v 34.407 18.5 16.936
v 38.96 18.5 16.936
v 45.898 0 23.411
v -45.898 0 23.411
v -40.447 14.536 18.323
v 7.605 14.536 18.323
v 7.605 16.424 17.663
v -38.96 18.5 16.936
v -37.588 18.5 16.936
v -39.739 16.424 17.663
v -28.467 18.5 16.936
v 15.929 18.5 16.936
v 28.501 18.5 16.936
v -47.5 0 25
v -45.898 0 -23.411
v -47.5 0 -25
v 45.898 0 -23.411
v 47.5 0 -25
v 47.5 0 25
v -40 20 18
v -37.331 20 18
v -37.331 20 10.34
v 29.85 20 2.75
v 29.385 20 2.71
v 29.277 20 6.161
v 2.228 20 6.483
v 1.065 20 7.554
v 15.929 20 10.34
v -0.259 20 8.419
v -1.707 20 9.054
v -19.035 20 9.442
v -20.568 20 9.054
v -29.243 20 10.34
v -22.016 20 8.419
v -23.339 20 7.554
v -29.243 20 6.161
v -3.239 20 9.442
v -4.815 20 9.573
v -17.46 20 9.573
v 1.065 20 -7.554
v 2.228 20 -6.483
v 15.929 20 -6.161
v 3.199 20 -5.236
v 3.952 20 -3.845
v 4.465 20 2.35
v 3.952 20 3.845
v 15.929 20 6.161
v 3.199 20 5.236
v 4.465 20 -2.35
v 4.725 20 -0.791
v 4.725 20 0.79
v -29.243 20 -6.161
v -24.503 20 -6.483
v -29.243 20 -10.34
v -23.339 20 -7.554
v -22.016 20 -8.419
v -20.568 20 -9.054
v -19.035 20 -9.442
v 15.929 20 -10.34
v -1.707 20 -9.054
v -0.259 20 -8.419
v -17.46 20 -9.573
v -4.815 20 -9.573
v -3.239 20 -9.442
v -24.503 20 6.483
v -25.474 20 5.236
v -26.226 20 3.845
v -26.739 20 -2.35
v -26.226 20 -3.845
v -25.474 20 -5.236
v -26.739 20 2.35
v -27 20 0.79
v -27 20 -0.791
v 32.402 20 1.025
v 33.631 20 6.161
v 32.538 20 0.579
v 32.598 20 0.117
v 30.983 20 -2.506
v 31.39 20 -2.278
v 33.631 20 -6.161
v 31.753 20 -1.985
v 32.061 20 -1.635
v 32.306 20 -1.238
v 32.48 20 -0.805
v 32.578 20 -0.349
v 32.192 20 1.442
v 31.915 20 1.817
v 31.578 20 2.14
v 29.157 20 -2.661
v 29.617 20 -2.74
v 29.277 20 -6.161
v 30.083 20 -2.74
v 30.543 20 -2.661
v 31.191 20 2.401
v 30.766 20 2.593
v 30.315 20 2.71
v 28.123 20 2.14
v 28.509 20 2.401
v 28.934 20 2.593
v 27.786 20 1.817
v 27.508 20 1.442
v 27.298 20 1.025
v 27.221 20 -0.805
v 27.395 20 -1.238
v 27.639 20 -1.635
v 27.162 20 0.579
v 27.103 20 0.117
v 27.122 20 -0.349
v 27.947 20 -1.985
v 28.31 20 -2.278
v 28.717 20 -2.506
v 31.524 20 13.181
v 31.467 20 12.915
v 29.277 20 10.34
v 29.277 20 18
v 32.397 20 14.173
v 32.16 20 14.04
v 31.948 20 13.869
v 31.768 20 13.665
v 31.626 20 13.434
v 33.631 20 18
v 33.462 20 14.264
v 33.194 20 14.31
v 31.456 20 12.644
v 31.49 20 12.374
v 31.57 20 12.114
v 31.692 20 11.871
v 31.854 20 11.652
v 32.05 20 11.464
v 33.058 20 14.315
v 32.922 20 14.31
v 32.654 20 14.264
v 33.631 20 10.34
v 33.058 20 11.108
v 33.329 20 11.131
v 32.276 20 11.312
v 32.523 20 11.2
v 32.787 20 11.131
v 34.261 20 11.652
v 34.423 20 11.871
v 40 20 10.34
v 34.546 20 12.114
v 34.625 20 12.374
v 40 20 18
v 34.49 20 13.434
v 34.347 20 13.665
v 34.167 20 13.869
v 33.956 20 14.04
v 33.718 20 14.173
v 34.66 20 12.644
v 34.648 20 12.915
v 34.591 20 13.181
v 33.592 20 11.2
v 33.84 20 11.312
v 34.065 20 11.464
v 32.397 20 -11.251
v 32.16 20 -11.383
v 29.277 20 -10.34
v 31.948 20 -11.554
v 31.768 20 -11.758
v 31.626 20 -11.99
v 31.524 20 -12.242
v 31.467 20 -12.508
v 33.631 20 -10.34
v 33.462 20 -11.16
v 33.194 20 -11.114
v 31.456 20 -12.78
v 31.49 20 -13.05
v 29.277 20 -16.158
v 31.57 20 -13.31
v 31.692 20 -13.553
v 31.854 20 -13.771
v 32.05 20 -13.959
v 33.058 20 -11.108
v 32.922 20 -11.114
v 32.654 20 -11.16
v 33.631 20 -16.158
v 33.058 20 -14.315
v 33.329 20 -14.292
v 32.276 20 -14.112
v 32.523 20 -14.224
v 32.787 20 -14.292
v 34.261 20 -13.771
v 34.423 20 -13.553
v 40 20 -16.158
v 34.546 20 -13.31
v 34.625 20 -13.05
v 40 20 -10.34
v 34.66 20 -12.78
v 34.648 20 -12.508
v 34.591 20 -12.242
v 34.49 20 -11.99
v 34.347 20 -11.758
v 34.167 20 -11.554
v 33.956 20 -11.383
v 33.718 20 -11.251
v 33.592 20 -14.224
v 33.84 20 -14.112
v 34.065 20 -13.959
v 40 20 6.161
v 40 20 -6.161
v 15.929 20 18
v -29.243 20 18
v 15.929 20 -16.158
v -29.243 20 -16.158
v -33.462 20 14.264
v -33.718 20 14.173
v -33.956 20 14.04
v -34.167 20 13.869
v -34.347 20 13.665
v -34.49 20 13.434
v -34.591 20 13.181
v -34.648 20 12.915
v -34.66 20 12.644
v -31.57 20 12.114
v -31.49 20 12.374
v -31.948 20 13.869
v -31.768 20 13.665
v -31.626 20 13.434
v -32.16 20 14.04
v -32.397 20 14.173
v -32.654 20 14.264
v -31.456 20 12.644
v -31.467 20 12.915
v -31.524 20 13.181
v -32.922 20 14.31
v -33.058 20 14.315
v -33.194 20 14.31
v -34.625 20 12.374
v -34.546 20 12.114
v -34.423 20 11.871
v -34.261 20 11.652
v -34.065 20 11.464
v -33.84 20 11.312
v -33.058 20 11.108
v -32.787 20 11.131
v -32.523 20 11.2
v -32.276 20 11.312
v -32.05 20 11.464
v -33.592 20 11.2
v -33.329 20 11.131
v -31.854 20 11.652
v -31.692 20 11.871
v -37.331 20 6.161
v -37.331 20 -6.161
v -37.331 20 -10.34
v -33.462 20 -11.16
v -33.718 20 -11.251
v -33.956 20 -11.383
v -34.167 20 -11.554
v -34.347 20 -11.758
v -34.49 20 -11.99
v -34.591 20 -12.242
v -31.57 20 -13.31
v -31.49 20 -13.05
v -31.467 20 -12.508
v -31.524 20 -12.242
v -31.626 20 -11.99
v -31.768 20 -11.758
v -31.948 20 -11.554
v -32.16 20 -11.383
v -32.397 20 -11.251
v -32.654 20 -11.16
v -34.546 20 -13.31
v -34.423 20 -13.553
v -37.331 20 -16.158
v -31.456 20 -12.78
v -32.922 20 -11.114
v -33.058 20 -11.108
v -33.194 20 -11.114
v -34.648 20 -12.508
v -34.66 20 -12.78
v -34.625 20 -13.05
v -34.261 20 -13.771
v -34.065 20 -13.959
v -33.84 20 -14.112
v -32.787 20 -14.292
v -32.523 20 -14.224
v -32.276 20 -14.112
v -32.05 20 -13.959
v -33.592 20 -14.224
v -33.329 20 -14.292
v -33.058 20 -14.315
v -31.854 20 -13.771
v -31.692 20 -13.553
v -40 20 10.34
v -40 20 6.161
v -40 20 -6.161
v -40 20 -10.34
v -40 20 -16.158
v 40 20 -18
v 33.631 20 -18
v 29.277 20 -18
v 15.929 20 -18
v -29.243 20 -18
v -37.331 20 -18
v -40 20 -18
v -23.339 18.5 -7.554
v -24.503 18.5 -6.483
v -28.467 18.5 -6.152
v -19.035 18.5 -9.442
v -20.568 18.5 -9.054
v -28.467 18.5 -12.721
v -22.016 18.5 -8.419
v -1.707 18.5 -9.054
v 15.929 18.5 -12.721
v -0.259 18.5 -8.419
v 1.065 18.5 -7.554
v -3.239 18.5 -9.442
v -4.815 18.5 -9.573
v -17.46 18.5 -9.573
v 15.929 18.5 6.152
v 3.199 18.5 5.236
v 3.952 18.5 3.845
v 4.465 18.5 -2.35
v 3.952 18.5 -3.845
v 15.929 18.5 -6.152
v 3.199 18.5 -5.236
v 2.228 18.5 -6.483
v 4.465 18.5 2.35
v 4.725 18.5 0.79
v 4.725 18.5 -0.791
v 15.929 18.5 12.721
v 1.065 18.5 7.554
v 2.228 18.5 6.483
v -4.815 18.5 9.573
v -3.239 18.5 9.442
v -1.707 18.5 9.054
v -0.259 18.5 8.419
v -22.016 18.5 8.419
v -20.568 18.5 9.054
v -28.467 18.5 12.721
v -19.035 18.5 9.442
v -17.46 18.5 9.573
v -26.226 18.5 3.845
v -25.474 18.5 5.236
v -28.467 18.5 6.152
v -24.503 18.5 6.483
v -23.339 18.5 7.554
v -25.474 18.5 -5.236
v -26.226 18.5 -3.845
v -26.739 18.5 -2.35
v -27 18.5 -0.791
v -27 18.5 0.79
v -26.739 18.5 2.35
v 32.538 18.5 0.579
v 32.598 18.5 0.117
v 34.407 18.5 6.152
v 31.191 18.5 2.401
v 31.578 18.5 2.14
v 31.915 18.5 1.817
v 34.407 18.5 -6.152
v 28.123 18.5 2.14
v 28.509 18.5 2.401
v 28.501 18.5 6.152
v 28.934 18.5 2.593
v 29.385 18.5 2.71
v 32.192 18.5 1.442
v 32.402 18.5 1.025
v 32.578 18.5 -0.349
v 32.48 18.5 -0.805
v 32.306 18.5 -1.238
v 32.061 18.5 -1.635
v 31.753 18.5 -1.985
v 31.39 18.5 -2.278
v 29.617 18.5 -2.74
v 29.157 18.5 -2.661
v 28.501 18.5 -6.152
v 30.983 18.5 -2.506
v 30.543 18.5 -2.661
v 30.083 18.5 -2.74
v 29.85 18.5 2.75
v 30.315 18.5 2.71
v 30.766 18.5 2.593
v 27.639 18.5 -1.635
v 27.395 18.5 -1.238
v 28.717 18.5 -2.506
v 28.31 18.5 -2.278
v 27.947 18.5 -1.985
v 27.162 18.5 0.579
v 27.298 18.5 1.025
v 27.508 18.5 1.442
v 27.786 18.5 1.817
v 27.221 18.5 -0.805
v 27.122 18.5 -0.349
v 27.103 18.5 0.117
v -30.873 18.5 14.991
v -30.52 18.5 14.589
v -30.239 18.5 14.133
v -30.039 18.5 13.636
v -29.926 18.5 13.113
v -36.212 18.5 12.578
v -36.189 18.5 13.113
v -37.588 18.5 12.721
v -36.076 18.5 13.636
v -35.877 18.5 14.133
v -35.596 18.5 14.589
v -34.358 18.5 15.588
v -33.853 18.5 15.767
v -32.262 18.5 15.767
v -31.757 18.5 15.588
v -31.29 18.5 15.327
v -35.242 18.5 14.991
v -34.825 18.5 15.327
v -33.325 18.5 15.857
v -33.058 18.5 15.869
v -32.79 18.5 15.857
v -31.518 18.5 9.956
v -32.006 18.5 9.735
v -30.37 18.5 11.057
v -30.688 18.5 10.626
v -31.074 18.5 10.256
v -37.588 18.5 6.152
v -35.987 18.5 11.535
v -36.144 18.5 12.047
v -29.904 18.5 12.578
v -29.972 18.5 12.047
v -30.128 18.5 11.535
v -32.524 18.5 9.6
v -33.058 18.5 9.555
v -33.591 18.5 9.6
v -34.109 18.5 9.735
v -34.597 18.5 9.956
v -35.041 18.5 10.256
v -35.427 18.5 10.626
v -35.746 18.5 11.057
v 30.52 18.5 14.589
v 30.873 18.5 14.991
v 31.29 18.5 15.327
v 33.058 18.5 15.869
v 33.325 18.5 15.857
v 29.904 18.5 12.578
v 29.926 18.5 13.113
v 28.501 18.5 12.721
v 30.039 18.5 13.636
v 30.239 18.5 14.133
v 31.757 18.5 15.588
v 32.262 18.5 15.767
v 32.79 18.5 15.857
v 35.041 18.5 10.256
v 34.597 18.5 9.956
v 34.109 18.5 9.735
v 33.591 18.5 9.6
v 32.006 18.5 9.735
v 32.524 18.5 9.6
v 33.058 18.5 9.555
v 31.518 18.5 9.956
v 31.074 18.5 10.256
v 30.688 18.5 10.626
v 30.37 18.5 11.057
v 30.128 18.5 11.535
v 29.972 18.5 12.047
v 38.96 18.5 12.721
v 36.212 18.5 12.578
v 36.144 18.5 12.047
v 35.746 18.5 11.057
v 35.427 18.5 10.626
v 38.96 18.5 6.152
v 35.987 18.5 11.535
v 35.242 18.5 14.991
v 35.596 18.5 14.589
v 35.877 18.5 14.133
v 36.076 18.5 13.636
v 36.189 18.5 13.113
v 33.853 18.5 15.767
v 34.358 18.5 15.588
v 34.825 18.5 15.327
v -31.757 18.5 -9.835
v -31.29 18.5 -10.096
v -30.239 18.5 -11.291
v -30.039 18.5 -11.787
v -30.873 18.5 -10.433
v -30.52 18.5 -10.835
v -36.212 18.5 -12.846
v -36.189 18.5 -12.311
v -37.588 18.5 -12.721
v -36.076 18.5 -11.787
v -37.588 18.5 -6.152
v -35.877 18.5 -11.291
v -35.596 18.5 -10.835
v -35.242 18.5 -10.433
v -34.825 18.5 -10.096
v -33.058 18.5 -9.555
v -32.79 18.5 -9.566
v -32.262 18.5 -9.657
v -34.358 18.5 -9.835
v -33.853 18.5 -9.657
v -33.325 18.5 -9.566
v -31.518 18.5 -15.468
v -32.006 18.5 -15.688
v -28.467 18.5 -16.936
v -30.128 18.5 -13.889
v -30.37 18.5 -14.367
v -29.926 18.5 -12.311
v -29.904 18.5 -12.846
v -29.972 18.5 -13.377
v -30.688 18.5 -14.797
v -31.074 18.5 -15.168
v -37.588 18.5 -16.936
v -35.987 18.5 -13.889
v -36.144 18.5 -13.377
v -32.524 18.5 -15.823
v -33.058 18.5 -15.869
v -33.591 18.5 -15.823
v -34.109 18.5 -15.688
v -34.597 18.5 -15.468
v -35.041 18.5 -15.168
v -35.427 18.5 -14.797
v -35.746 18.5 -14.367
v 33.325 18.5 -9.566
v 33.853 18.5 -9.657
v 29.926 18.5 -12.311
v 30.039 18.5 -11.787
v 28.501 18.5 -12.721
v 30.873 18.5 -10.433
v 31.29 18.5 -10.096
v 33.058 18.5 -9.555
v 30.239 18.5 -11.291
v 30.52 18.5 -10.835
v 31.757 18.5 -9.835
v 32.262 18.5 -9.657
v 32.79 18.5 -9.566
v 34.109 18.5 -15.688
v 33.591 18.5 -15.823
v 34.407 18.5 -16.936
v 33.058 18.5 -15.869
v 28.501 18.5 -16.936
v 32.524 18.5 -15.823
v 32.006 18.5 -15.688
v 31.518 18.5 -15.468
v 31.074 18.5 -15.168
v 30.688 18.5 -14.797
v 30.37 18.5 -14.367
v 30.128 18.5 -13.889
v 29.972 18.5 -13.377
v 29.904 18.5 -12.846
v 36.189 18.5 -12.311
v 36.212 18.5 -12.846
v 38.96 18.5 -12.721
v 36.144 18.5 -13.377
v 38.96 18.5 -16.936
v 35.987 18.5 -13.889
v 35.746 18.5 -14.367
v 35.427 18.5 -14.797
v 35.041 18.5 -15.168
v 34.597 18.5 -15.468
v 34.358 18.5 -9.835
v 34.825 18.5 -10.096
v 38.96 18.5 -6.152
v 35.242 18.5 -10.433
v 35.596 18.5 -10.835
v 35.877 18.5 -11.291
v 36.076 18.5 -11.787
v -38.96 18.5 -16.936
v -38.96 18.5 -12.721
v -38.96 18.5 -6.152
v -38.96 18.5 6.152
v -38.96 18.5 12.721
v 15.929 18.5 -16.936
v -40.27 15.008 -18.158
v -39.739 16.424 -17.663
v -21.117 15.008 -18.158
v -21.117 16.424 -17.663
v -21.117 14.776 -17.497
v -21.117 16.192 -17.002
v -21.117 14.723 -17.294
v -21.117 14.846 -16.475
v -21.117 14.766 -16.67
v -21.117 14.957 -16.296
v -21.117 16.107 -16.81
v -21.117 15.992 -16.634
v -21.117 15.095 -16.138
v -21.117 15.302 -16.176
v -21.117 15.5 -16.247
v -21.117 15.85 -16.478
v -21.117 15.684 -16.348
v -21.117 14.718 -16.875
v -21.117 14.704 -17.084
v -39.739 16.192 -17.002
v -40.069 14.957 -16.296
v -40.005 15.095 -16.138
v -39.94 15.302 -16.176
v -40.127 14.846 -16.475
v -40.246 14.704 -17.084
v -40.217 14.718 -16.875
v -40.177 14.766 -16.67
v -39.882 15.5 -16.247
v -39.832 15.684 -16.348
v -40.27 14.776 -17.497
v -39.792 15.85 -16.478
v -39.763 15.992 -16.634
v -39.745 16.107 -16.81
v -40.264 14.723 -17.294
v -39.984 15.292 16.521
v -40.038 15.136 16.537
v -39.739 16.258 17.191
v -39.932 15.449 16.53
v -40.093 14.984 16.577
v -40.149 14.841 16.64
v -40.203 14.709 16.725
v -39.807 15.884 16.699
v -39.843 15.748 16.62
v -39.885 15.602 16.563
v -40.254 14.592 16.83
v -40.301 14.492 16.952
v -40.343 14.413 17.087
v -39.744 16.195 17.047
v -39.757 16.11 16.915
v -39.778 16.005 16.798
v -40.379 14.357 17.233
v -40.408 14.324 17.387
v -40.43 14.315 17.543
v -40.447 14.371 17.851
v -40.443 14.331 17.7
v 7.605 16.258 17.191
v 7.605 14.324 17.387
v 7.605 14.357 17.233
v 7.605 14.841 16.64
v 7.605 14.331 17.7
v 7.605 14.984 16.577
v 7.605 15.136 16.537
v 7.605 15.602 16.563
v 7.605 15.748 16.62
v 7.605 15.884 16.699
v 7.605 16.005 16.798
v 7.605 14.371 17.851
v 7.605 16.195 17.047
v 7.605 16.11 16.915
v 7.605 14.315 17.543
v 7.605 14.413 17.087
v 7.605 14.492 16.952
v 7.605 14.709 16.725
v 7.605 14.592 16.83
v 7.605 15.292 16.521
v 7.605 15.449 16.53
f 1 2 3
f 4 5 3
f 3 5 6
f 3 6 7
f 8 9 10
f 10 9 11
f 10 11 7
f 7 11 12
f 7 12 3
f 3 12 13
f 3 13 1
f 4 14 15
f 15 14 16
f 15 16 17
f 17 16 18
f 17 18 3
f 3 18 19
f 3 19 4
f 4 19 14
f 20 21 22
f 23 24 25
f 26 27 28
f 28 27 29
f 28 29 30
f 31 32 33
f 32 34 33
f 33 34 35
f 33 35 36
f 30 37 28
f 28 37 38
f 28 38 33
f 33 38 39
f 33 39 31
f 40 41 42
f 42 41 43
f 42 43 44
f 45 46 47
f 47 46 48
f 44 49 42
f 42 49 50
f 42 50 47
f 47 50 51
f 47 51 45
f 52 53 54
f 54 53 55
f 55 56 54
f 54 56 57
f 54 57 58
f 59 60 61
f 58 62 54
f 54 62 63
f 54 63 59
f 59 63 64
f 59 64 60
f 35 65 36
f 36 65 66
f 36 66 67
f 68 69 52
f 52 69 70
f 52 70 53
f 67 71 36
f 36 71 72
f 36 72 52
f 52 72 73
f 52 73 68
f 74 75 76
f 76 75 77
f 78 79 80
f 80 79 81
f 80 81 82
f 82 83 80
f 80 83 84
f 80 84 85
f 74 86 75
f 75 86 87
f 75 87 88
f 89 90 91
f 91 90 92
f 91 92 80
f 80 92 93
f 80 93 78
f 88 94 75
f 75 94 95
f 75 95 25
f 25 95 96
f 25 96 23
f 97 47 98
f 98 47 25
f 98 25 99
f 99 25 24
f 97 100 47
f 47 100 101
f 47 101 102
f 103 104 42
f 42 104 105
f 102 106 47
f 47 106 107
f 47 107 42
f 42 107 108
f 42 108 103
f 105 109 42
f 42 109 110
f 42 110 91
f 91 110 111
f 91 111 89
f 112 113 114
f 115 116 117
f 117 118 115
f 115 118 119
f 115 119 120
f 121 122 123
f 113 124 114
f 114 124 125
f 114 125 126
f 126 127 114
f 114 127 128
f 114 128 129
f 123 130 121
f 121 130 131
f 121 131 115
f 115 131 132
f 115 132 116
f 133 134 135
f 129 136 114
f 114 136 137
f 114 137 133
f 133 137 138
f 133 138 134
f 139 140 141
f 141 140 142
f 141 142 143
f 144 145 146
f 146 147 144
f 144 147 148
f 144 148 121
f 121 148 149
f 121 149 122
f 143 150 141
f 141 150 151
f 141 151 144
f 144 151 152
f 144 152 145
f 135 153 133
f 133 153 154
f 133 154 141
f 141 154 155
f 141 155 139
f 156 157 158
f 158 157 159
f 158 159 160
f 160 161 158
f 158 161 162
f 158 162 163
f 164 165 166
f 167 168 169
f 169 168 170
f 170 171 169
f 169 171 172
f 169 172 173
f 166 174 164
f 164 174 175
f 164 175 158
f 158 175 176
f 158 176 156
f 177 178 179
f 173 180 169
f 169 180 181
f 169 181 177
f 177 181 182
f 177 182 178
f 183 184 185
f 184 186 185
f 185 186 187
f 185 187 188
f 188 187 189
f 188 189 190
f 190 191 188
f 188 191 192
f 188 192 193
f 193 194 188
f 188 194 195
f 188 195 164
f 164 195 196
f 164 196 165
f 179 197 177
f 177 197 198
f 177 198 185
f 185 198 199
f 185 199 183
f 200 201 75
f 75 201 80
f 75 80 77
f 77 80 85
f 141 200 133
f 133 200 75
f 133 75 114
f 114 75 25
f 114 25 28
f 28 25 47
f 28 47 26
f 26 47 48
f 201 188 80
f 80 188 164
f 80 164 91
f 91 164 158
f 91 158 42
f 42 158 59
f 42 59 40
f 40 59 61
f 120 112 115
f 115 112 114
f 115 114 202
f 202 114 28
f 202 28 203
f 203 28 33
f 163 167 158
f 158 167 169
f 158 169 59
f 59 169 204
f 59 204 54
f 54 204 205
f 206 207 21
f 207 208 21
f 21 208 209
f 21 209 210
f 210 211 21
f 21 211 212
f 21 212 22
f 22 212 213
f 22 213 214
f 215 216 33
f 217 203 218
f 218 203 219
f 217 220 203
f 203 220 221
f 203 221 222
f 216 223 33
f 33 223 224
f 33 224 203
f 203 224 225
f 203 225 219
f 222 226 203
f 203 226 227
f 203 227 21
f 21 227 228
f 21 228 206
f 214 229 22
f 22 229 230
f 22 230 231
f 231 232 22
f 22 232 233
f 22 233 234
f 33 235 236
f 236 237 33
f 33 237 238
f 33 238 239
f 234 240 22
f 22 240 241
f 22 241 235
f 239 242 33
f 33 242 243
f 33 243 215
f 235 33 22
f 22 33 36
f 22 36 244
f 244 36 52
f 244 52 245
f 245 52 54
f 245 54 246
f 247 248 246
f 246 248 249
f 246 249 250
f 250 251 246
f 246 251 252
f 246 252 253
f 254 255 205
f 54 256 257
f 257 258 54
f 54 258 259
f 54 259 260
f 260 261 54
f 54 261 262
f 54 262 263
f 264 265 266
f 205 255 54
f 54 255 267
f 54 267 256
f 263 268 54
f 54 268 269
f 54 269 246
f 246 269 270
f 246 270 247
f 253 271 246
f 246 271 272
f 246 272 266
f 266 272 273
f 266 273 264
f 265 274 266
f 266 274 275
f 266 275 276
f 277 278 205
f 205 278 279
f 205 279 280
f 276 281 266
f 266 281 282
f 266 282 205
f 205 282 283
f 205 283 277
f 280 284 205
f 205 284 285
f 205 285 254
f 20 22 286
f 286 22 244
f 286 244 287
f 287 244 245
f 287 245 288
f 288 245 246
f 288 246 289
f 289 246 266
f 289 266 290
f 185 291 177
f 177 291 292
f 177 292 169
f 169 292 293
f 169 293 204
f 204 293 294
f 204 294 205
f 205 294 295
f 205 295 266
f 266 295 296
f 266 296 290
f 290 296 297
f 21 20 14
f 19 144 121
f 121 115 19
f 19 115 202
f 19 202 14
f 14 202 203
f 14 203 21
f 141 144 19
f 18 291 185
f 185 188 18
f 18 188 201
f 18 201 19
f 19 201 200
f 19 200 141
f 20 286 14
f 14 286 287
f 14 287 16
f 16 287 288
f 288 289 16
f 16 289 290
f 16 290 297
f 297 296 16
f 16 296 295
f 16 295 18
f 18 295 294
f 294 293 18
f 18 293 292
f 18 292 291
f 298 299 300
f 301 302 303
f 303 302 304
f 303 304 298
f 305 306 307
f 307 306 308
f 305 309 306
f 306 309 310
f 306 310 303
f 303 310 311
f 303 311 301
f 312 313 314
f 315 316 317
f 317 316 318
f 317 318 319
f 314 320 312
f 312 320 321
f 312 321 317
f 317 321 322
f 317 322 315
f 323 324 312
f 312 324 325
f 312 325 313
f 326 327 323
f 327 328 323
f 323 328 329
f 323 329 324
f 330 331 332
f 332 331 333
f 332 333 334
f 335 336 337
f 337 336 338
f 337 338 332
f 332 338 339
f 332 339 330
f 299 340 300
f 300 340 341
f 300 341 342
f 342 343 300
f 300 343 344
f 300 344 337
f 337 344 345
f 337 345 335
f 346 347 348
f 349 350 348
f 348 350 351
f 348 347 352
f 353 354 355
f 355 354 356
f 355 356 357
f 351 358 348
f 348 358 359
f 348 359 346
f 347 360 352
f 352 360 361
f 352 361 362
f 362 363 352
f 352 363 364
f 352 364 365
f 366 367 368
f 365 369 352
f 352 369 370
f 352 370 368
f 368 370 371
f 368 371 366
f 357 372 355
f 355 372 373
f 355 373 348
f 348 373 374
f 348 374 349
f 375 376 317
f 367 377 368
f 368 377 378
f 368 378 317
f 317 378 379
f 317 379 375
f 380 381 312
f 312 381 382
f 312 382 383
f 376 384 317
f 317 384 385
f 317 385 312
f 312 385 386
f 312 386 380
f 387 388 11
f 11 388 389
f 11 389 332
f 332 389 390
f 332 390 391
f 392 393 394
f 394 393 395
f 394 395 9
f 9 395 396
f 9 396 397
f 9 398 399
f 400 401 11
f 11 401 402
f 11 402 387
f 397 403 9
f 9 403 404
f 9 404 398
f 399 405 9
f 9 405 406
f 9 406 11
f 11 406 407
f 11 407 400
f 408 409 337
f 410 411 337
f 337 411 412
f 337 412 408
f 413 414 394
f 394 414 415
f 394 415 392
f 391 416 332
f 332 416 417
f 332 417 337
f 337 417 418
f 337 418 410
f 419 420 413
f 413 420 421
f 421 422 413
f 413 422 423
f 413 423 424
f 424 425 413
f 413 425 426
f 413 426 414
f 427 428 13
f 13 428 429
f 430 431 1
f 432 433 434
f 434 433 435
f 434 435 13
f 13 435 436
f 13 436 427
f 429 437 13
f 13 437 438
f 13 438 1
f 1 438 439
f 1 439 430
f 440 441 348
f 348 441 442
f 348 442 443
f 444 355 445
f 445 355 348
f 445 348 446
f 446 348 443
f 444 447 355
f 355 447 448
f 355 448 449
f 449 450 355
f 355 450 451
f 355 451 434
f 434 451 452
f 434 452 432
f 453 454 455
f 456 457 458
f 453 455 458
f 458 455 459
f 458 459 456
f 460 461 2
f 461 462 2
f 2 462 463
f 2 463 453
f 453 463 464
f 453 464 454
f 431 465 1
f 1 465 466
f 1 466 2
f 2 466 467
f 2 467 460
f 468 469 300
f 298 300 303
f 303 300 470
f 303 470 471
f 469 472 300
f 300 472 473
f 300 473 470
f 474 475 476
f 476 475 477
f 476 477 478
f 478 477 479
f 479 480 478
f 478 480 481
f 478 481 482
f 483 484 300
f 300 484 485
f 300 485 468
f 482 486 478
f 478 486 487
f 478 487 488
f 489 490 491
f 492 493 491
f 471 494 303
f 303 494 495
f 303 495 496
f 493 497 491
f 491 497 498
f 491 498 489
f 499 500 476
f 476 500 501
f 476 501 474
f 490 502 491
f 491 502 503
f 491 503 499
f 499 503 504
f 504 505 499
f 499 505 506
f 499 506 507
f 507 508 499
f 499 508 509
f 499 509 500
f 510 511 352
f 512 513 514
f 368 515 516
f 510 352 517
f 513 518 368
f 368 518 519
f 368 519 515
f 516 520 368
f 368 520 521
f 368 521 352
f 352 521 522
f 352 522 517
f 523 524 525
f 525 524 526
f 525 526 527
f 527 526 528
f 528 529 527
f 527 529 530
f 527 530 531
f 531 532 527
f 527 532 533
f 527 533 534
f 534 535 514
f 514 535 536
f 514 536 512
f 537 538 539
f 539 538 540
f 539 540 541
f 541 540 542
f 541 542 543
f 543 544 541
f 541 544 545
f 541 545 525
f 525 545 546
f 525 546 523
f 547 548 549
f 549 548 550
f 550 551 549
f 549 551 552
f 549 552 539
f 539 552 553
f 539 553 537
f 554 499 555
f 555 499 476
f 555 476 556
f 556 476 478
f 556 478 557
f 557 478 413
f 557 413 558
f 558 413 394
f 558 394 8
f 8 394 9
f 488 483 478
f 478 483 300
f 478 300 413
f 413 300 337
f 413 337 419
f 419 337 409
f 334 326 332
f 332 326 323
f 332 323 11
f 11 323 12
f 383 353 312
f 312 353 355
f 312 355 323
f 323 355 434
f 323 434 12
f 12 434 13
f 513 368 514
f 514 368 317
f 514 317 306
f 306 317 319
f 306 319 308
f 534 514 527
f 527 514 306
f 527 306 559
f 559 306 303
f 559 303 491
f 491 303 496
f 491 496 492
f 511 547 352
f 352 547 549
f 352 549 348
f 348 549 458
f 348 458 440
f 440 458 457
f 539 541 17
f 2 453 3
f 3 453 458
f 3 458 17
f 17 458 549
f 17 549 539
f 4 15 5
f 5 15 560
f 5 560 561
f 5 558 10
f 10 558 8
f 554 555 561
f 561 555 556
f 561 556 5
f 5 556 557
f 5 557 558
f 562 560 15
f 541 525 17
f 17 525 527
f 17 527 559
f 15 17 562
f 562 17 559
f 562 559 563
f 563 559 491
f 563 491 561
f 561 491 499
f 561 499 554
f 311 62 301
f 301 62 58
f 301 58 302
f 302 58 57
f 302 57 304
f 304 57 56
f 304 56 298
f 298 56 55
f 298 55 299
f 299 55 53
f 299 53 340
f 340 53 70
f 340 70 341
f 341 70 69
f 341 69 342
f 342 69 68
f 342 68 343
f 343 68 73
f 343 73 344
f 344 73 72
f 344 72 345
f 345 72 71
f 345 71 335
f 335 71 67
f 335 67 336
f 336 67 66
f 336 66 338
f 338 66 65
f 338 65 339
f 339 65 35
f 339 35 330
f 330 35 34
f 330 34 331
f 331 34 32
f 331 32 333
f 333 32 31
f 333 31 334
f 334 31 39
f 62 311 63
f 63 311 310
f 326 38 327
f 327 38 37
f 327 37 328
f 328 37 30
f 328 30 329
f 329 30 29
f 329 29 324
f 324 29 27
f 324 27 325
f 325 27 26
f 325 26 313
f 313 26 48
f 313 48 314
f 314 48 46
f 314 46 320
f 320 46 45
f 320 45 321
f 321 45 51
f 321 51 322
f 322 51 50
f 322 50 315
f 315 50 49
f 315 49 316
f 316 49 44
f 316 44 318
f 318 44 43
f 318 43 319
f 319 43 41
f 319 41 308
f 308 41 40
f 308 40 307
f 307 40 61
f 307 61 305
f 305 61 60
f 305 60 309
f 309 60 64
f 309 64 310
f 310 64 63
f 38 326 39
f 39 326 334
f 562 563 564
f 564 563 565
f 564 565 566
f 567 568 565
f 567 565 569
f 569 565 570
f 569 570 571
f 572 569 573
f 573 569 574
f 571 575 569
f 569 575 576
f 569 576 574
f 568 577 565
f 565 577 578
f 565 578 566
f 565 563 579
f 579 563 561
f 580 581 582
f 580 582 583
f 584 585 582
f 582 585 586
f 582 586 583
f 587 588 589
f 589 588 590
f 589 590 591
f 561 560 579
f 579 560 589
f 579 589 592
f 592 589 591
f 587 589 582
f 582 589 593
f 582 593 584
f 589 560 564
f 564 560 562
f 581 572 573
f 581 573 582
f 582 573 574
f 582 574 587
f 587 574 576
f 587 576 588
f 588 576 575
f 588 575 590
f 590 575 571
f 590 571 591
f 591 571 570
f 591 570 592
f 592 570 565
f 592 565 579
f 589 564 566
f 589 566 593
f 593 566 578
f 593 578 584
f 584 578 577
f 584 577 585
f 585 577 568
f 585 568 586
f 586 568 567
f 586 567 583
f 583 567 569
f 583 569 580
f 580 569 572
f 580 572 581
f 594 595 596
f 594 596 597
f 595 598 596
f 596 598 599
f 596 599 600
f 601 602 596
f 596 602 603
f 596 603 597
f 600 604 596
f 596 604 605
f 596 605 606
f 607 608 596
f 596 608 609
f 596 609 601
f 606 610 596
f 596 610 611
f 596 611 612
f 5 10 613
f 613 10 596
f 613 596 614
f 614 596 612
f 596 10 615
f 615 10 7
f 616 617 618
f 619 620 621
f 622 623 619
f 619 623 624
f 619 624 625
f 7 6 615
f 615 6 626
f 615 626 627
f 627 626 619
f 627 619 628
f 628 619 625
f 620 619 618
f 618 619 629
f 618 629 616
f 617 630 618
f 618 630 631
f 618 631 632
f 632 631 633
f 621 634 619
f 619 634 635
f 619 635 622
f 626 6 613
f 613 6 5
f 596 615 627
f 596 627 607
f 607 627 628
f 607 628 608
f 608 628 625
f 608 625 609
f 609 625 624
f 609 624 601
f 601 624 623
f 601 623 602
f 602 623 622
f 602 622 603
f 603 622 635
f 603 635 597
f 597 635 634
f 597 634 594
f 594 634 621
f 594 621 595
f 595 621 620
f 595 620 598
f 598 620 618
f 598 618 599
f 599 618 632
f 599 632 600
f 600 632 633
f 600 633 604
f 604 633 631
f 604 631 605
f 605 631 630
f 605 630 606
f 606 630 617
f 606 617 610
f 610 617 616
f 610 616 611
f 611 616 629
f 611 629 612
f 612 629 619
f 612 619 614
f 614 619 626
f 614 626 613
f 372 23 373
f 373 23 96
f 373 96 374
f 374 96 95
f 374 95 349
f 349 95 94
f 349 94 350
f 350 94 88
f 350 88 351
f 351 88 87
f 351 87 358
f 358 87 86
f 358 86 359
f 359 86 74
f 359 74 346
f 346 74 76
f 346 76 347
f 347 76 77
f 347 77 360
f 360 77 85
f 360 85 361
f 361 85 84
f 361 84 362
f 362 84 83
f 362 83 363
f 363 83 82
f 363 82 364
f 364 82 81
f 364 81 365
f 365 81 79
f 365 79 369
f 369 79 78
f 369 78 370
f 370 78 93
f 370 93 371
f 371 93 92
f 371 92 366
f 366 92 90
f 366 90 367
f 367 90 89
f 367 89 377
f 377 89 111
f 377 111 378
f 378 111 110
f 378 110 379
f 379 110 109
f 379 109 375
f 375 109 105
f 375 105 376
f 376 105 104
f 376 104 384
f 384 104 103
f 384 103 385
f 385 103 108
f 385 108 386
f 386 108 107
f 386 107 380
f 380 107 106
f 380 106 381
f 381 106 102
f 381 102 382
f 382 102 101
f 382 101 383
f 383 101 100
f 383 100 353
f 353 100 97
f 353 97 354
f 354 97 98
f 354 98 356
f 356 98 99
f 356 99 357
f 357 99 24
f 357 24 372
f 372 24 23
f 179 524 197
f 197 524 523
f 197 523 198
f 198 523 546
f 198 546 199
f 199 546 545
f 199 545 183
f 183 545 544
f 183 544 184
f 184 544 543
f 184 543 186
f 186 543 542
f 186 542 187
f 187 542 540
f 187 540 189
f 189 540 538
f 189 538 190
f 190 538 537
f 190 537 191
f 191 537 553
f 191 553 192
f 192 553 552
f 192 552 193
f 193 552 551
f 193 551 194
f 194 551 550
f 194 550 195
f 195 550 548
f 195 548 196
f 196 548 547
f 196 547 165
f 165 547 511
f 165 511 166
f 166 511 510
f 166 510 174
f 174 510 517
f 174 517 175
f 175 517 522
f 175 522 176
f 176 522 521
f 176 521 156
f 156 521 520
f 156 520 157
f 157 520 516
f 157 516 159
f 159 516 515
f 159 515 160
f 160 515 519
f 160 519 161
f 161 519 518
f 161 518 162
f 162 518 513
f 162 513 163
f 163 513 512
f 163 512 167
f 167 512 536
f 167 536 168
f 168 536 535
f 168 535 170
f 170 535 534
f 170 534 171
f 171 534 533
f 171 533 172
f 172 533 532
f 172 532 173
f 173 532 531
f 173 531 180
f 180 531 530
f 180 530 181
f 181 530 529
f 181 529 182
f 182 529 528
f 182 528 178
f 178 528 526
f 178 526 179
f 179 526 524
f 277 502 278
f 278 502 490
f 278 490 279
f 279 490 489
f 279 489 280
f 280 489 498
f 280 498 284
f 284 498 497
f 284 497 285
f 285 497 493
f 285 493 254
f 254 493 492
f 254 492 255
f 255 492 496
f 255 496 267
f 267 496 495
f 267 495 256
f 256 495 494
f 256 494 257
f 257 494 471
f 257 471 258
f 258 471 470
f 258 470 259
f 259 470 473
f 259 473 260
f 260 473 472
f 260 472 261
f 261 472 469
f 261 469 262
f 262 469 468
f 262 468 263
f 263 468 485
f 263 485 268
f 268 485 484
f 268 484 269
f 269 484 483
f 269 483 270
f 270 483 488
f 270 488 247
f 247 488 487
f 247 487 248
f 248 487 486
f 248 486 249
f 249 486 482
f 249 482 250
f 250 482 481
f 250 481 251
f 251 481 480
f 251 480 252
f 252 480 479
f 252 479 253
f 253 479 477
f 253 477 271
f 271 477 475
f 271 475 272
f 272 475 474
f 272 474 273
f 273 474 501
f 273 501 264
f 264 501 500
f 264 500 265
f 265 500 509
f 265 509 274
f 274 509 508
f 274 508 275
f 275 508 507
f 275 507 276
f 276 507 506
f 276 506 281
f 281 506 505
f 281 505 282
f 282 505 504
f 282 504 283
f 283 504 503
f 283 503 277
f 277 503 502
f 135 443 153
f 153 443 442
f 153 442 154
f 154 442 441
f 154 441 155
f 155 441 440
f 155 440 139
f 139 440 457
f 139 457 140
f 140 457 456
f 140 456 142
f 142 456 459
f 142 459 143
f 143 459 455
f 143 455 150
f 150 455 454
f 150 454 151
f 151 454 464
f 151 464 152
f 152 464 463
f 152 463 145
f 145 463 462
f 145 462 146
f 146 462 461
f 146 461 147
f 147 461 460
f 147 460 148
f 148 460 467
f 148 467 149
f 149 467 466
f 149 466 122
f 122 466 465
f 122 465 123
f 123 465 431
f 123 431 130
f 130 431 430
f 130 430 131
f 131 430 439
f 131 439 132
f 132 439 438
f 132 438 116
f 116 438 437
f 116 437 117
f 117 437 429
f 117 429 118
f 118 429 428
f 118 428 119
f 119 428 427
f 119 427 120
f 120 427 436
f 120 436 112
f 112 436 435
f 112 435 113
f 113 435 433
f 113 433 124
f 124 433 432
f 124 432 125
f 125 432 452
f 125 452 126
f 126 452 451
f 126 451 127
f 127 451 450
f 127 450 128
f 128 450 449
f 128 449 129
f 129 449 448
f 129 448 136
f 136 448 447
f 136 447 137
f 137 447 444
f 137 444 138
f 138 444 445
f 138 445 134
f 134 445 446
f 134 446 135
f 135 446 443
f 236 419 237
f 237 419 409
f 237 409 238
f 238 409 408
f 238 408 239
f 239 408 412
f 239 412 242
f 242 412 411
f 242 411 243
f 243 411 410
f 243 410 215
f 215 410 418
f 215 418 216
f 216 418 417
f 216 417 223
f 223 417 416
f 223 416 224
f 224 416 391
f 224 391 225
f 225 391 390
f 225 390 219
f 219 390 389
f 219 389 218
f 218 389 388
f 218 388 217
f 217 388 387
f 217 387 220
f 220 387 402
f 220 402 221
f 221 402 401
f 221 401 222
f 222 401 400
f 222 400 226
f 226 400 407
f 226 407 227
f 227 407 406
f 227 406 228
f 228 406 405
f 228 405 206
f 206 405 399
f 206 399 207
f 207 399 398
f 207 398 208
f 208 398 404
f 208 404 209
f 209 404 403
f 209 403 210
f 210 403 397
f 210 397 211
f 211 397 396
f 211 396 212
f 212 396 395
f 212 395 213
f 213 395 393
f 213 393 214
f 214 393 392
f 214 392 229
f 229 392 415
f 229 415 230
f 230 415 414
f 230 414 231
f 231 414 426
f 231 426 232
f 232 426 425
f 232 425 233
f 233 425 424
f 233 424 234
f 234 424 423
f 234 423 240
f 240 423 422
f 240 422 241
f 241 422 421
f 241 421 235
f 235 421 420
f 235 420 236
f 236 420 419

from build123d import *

# Parameters (mm, degrees)
BO_ALTMA1_T                 = -1.5
KES_EKSTR_ZYON1_DEPTH       = 2
Y_KSEKLIK_EKSTR_ZYON4_DEPTH = 2
RADYUS1_R                   = 1.3
Y_KSEKLIK_EKSTR_ZYON5_DEPTH = 1.5
RADYUS2_R                   = 1
IZIM7_R                     = 2.75
KES_EKSTR_ZYON2_DEPTH       = 10
IZIM8_R                     = 1.5
KES_EKSTR_ZYON3_DEPTH       = 10
PAH1_SIZE                   = 1.656848502
PAH1_SIZE_2                 = 1.6


# Some blends are built 0.0001 mm under size
with BuildPart() as part:
    # Çizim3 → Loft4 section 0
    with BuildSketch(Plane(origin=(0, 20, 0), x_dir=(1, 0, 0), z_dir=(0, 1, 0))):
        with BuildLine():
            Line((-40, 18), (40, 18))
            Line((40, 18), (40, -18))
            Line((40, -18), (-40, -18))
            Line((-40, -18), (-40, 18))
        make_face()
    # Çizim1 → Loft4 section 1
    with BuildSketch(Plane(origin=(0, 0, 0), x_dir=(1, 0, 0), z_dir=(0, 1, 0))):
        with BuildLine():
            Line((-47.5, 25), (47.5, 25))
            Line((47.5, 25), (47.5, -25))
            Line((47.5, -25), (-47.5, -25))
            Line((-47.5, -25), (-47.5, 25))
        make_face()
    loft()

    # İç Boşaltma1
    bo_altma1_openings = [part.faces().sort_by_distance(p)[0] for p in [
        (0, 0, 0),
    ]]
    offset(amount=BO_ALTMA1_T, openings=bo_altma1_openings, kind=Kind.INTERSECTION)

    # Çizim4 → Kes-Ekstrüzyon1 (cut)
    with BuildSketch(Plane(origin=(0, 20, 0), x_dir=(1, 0, 0), z_dir=(0, 1, 0))):
        with BuildLine():
            Line((-17.459780383, 9.572622818), (-4.814835579, 9.572622818))
            ThreePointArc((-4.814835579, 9.572622818), (4.757787239, 0), (-4.814835579, -9.572622818))
            Line((-4.814835579, -9.572622818), (-17.459780383, -9.572622818))
            ThreePointArc((-17.459780383, -9.572622818), (-27.032403201, 0), (-17.459780383, 9.572622818))
        make_face()
    extrude(amount=-KES_EKSTR_ZYON1_DEPTH, mode=Mode.SUBTRACT)

    # Çizim5 → Yükseklik-Ekstrüzyon4 (add)
    with BuildSketch(Plane(origin=(0, 7.299574586, -20.855927387), x_dir=(1, 0, 0), z_dir=(0, -0.33035042472810616, 0.9438583563660173))):
        Polygon((-21.117307497, 9.666637975), (-39.739182442, 9.666637975), (-40.270102767, 8.166637975), (-21.117307497, 8.166637975), align=None)
    extrude(amount=Y_KSEKLIK_EKSTR_ZYON4_DEPTH)

    # Radyus1
    # the kernel refuses this fillet: 1.3 mm, written as the material it takes off along each edge
    with BuildSketch(Plane(origin=(-43.520102767, 14.347023232, -16.270358351), x_dir=(0, 0.3303504247281054, -0.9438583563660177), z_dir=(1, 0, 0))) as radyus1_piece_1_section:
        with BuildLine():
            CenterArc((RADYUS1_R, RADYUS1_R), RADYUS1_R, 180, 90)
            Line((0, RADYUS1_R), (0, 0))
            Line((0, 0), (RADYUS1_R, 0))
        make_face()
    radyus1_piece_1 = extrude(amount=25.65279527, mode=Mode.PRIVATE)
    radyus1_piece_1 = split(radyus1_piece_1, bisect_by=Plane(origin=(-39.107264326, 17.544066892, -15.459731471), z_dir=(0.942692407816345, -0.3149306484909819, -0.11022572697184368)), keep=Keep.TOP, mode=Mode.PRIVATE)
    add(radyus1_piece_1, mode=Mode.SUBTRACT)
    with BuildSketch(Plane(origin=(-17.867307497, 15.762810767, -15.774832714), x_dir=(0, 0.33035042472810655, -0.9438583563660172), z_dir=(-1, 0, 0))) as radyus1_piece_2_section:
        with BuildLine():
            CenterArc((RADYUS1_R, RADYUS1_R), RADYUS1_R, 180, 90)
            Line((0, RADYUS1_R), (0, 0))
            Line((0, 0), (RADYUS1_R, 0))
        make_face()
    radyus1_piece_2 = extrude(amount=25.121874944, mode=Mode.PRIVATE)
    radyus1_piece_2 = split(radyus1_piece_2, bisect_by=Plane(origin=(-38.800018931, 18.36295512, -15.171732463), z_dir=(0.942692407816345, -0.3149306484909819, -0.11022572697184368)), keep=Keep.TOP, mode=Mode.PRIVATE)
    add(radyus1_piece_2, mode=Mode.SUBTRACT)

    # Çizim6 → Yükseklik-Ekstrüzyon5 (add)
    with BuildSketch(Plane(origin=(0, 7.299574586, 20.855927387), x_dir=(-1, 0, 0), z_dir=(0, -0.3303504247281064, -0.9438583563660174))):
        Polygon((39.739182442, 9.666637975), (-7.605280372, 9.666637975), (-7.605280372, 7.666637975), (40.447076209, 7.666637975), align=None)
    extrude(amount=Y_KSEKLIK_EKSTR_ZYON5_DEPTH)

    # Radyus2
    radyus2_edges = [part.edges().sort_by_distance(p)[0] for p in [
        (-16.420897918, 14.040269266, 16.907462742),
        (-16.066951035, 15.927985979, 16.246761892),
    ]]
    fillet(radyus2_edges, radius=RADYUS2_R - 0.0001)  # a hair under: the kernel refuses the full size

    # Çizim7 → Kes-Ekstrüzyon2 (cut)
    with BuildSketch(Plane(origin=(0, 20, 0), x_dir=(1, 0, 0), z_dir=(0, 1, 0))):
        with Locations(Location((29.850184799, 0, 0), (0, 0, 270))):
            Circle(IZIM7_R)
    extrude(amount=-KES_EKSTR_ZYON2_DEPTH, mode=Mode.SUBTRACT)

    # Çizim8 → Kes-Ekstrüzyon3 (cut)
    with BuildSketch(Plane(origin=(0, 20, 0), x_dir=(1, 0, 0), z_dir=(0, 1, 0))):
        with Locations(Location((-33.057672649, 12.71180558, 0), (0, 0, 270))):
            Circle(IZIM8_R)
        with Locations(Location((33.057672649, 12.71180558, 0), (0, 0, 270))):
            Circle(IZIM8_R)
        with Locations(Location((33.057672649, -12.71180558, 0), (0, 0, 270))):
            Circle(IZIM8_R)
        with Locations(Location((-33.057672649, -12.71180558, 0), (0, 0, 270))):
            Circle(IZIM8_R)
    extrude(amount=-KES_EKSTR_ZYON3_DEPTH, mode=Mode.SUBTRACT)

    # Pah1
    # the kernel refuses this chamfer: 1.656848502, 1.6 mm, written as the material it takes off along each edge
    with BuildSketch(Plane(origin=(33.057672649, 18.5, -12.71180558), x_dir=(0, 0, 1), z_dir=(-1, 0, 0))) as pah1_piece_1:
        Polygon((1.5 + PAH1_SIZE, 0), (1.5, PAH1_SIZE_2), (1.5, 0), align=None)
    revolve(axis=Axis((33.057672649, 18.5, -12.71180558), (0, 1, 0)), mode=Mode.SUBTRACT)
    with BuildSketch(Plane(origin=(-33.057672649, 18.5, -12.71180558), x_dir=(0, 0, 1), z_dir=(-1, 0, 0))) as pah1_piece_2:
        Polygon((1.5 + PAH1_SIZE, 0), (1.5, PAH1_SIZE_2), (1.5, 0), align=None)
    revolve(axis=Axis((-33.057672649, 18.5, -12.71180558), (0, 1, 0)), mode=Mode.SUBTRACT)
    with BuildSketch(Plane(origin=(33.057672649, 18.5, 12.71180558), x_dir=(0, 0, 1), z_dir=(-1, 0, 0))) as pah1_piece_3:
        Polygon((1.5 + PAH1_SIZE, 0), (1.5, PAH1_SIZE_2), (1.5, 0), align=None)
    revolve(axis=Axis((33.057672649, 18.5, 12.71180558), (0, 1, 0)), mode=Mode.SUBTRACT)
    with BuildSketch(Plane(origin=(-33.057672649, 18.5, 12.71180558), x_dir=(0, 0, 1), z_dir=(-1, 0, 0))) as pah1_piece_4:
        Polygon((1.5 + PAH1_SIZE, 0), (1.5, PAH1_SIZE_2), (1.5, 0), align=None)
    revolve(axis=Axis((-33.057672649, 18.5, 12.71180558), (0, 1, 0)), mode=Mode.SUBTRACT)


solid = part.part
